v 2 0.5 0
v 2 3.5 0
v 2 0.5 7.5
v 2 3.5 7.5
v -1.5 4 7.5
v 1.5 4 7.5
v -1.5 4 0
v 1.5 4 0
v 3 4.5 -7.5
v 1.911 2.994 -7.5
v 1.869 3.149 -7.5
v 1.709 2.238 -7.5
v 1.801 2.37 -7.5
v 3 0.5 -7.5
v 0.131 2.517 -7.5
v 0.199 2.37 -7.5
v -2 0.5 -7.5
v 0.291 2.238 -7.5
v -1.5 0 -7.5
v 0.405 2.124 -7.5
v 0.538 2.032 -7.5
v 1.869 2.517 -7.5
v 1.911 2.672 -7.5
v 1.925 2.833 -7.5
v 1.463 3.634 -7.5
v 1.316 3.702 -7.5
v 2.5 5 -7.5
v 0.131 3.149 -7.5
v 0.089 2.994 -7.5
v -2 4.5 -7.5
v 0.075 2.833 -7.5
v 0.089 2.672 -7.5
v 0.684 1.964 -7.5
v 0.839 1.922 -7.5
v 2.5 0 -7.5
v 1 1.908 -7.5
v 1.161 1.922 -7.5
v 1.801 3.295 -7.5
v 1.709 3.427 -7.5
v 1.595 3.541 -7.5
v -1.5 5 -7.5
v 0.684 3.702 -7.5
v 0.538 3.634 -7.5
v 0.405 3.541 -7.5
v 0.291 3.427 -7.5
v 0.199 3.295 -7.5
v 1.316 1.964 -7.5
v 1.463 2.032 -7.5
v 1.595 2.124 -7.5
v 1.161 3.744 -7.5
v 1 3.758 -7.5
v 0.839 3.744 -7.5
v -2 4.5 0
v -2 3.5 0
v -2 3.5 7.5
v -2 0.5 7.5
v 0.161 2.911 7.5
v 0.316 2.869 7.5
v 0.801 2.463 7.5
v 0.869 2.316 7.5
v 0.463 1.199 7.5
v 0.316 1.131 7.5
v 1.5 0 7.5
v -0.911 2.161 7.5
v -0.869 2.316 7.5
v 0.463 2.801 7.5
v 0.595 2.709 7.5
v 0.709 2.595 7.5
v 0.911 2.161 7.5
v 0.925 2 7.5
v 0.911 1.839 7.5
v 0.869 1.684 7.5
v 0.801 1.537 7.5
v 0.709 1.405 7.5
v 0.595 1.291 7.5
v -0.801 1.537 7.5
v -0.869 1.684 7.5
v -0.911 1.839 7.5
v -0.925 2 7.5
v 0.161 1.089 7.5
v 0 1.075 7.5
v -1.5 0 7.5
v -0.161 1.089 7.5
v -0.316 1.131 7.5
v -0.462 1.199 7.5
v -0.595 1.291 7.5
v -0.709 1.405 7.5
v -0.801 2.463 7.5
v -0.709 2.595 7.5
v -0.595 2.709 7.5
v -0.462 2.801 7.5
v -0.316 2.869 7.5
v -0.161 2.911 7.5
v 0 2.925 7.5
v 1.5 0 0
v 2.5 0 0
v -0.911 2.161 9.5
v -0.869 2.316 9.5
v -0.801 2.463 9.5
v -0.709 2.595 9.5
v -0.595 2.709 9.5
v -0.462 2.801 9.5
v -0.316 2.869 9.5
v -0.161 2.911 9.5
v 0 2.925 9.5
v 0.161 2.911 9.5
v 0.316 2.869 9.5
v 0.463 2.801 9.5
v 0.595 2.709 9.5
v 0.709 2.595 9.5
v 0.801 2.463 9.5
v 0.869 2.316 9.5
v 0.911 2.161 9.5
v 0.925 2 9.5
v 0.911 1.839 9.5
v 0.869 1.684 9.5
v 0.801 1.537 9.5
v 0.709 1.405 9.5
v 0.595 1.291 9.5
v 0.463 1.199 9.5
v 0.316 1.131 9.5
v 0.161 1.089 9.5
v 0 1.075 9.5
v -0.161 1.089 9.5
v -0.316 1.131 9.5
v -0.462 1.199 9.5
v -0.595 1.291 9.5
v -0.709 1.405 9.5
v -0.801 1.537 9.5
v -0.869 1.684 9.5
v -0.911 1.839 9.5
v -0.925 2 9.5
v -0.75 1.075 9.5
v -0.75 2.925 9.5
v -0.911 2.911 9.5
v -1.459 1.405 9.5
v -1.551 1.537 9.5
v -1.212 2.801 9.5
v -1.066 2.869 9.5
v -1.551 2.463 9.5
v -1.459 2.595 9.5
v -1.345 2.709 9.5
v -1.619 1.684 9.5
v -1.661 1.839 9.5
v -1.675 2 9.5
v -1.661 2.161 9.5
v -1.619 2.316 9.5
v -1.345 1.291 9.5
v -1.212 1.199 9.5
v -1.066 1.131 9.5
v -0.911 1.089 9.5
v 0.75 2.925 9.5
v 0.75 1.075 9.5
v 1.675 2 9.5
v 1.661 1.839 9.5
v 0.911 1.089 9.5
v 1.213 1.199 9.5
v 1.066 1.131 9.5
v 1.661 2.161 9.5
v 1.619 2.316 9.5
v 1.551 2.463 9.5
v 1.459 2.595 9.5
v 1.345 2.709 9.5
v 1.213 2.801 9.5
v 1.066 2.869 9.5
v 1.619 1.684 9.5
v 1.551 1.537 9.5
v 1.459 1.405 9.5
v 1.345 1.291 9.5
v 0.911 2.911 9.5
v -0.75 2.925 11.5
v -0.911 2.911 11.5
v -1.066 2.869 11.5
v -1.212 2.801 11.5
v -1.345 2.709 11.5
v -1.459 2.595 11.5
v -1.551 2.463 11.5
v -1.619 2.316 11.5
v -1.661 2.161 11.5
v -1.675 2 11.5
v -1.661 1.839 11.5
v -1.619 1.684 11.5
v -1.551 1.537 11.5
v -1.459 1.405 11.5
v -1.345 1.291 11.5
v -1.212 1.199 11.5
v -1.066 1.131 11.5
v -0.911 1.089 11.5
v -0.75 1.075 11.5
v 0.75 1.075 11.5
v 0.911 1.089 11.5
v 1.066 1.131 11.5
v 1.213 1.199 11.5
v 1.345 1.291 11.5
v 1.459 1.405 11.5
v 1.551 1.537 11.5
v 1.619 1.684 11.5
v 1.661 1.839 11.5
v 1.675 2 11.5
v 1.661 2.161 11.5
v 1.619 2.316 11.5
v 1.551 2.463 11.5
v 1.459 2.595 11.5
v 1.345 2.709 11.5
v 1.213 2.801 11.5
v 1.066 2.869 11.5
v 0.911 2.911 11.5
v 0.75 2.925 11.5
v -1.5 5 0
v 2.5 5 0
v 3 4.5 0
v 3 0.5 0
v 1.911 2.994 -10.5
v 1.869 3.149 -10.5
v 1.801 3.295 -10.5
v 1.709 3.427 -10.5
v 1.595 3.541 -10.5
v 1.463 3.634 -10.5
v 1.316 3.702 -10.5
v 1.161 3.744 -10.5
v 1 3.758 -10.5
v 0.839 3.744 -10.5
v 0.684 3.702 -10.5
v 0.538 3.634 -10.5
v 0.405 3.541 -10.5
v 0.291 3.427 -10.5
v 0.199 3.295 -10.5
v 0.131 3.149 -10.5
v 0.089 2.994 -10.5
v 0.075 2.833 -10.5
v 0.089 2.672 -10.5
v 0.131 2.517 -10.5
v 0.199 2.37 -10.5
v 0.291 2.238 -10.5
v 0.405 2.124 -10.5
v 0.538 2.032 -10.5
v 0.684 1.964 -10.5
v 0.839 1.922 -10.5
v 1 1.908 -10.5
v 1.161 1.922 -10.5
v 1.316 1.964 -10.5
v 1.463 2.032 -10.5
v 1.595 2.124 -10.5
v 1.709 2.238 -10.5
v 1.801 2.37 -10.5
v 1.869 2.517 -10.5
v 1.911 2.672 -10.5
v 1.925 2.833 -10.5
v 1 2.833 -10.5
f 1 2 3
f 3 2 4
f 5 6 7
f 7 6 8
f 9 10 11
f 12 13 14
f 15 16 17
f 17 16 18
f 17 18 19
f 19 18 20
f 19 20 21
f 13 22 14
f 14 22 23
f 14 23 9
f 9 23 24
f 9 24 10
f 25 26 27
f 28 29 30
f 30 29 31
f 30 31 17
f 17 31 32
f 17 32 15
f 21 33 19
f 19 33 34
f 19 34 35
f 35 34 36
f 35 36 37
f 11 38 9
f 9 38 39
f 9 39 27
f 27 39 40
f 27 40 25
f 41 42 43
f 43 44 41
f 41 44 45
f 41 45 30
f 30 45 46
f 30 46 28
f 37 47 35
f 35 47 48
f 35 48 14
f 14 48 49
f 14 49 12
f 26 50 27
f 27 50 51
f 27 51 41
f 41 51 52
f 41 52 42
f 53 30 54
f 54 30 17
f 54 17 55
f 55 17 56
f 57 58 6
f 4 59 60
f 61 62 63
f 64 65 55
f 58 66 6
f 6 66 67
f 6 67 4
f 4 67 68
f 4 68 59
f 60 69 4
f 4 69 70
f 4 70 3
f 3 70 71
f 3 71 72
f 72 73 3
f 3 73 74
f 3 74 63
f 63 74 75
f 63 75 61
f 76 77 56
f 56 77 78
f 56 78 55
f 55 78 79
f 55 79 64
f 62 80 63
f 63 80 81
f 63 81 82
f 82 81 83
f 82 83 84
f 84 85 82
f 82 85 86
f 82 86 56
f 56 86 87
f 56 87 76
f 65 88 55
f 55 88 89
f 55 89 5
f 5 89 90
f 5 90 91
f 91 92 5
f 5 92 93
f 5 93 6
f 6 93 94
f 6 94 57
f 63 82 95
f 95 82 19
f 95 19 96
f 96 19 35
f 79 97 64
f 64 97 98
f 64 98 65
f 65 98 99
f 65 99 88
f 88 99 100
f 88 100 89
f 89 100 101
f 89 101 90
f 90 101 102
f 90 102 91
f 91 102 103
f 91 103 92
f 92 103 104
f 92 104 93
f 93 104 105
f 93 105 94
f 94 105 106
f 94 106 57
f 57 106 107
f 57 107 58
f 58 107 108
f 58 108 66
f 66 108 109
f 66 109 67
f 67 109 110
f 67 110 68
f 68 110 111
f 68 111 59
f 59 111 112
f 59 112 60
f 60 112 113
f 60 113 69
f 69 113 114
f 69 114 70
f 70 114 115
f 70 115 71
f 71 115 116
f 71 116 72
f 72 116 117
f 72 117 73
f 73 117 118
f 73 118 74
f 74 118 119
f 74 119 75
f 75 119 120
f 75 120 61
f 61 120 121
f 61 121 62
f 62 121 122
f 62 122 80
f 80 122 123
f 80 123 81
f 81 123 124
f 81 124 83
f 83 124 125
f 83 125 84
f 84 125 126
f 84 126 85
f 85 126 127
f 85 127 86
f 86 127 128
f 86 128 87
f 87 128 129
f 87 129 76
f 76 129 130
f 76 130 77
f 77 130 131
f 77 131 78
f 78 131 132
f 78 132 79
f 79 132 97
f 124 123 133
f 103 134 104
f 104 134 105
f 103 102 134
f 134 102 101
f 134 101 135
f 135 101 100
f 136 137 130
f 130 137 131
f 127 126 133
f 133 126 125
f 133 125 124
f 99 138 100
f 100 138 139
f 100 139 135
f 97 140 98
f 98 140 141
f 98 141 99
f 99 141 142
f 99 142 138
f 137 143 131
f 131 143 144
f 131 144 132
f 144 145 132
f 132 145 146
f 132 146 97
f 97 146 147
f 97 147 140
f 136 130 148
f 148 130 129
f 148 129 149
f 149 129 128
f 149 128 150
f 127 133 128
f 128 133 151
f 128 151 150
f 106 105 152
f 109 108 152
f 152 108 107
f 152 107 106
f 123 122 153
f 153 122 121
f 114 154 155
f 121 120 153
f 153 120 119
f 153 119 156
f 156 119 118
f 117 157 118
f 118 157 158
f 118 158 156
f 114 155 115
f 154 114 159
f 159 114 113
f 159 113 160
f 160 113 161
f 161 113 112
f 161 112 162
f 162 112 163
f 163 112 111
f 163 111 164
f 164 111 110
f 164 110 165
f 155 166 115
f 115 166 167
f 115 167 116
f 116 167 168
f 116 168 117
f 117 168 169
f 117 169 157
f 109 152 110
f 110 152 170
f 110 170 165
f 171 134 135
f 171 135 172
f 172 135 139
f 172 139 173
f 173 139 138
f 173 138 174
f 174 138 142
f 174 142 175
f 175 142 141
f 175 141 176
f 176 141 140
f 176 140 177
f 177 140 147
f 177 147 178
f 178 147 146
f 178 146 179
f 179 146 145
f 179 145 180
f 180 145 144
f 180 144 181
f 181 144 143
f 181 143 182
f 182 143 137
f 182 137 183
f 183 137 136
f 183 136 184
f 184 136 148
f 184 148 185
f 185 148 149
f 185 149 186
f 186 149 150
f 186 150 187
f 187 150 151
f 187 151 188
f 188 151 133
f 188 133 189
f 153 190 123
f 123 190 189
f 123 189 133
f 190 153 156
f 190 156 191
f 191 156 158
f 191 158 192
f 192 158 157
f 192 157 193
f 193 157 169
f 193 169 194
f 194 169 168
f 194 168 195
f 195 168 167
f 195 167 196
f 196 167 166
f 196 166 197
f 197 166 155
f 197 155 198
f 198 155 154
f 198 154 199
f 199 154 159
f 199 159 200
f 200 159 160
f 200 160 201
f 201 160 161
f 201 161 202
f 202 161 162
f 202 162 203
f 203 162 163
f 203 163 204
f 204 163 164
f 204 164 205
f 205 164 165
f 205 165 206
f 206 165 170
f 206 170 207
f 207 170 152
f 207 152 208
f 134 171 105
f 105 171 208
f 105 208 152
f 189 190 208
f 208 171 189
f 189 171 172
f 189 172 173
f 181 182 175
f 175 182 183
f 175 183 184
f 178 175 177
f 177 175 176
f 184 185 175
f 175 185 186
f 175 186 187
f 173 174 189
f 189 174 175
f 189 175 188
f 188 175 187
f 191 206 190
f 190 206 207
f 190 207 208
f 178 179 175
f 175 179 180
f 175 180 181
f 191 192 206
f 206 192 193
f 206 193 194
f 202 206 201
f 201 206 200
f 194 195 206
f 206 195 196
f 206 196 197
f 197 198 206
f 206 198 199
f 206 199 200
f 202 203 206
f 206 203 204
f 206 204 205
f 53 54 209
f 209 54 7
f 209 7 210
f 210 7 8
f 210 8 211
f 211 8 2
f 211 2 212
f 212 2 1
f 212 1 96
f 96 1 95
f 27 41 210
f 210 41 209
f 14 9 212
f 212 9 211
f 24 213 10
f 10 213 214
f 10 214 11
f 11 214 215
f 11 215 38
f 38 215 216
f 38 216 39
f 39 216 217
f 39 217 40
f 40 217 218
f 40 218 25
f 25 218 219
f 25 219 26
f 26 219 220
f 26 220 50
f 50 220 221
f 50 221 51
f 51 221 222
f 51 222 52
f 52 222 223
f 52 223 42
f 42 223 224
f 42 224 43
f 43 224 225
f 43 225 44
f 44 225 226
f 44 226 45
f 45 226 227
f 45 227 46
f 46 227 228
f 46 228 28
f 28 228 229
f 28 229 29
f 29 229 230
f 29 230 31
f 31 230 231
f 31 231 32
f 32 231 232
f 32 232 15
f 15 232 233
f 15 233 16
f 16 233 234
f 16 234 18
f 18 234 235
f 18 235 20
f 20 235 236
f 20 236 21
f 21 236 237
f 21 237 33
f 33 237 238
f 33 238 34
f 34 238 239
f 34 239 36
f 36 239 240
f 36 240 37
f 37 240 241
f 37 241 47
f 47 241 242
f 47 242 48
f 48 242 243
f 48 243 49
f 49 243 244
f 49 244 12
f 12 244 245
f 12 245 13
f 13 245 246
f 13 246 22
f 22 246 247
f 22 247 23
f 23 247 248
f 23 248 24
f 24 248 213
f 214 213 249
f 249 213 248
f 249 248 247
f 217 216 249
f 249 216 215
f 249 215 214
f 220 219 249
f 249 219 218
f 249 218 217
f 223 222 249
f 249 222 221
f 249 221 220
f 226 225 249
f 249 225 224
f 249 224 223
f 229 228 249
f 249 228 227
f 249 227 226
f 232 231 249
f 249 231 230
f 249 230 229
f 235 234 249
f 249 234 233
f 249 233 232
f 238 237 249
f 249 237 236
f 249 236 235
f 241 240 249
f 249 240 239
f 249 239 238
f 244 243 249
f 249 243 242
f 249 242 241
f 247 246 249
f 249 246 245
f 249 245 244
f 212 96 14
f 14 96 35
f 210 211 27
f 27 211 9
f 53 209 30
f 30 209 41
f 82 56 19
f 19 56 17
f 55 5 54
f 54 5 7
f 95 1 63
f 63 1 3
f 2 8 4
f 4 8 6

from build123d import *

# Parameters (mm, degrees)
SKETCH1_W           = 4
SKETCH1_H           = 15
BOSS_EXTRUDE1_DEPTH = 4
SKETCH2_R           = 0.925
BOSS_EXTRUDE2_DEPTH = 2
BOSS_EXTRUDE3_DEPTH = 2
SKETCH6_W           = 5
SKETCH6_H           = 5
BOSS_EXTRUDE5_DEPTH = 7.5
SKETCH7_R           = 0.925
BOSS_EXTRUDE6_DEPTH = 18
CHAMFER1_SIZE       = 0.5


with BuildPart() as part:
    # Sketch1 → Boss-Extrude1 (new body)
    with BuildSketch(Plane(origin=(0, 0, 0), x_dir=(1, 0, 0), z_dir=(0, 1, 0))):
        Rectangle(SKETCH1_W, SKETCH1_H)
    extrude(amount=BOSS_EXTRUDE1_DEPTH)

    # Sketch2 → Boss-Extrude2 (add)
    with BuildSketch(Plane.XY.offset(7.5)):
        with Locations((0, 2)):
            Circle(SKETCH2_R)
    extrude(amount=BOSS_EXTRUDE2_DEPTH)

    # Sketch3 → Boss-Extrude3 (add)
    with BuildSketch(Plane.XY.offset(9.5)):
        with BuildLine():
            Line((-0.75, 2.925), (0.75, 2.925))
            ThreePointArc((0.75, 2.925), (1.675, 2), (0.75, 1.075))
            Line((0.75, 1.075), (-0.75, 1.075))
            ThreePointArc((-0.75, 1.075), (-1.675, 2), (-0.75, 2.925))
        make_face()
    extrude(amount=BOSS_EXTRUDE3_DEPTH)

    # Sketch6 → Boss-Extrude5 (add)
    with BuildSketch(Plane.XY):
        with Locations((0.5, 2.5)):
            Rectangle(SKETCH6_W, SKETCH6_H)
    extrude(amount=-BOSS_EXTRUDE5_DEPTH)

    # Sketch7 → Boss-Extrude6 (add)
    with BuildSketch(Plane.XY.offset(7.5)):
        with Locations((1, 2.832903413)):
            Circle(SKETCH7_R)
    extrude(amount=-BOSS_EXTRUDE6_DEPTH)

    # Chamfer1
    chamfer1_edges = [part.edges().sort_by_distance(p)[0] for p in [
        (-2, 4, 3.75),
        (3, 0, -3.75),
        (-2, 5, -3.75),
        (3, 5, -3.75),
        (2, 4, 3.75),
        (-2, 0, 0),
        (2, 0, 3.75),
    ]]
    chamfer(chamfer1_edges, length=CHAMFER1_SIZE)


solid = part.part
